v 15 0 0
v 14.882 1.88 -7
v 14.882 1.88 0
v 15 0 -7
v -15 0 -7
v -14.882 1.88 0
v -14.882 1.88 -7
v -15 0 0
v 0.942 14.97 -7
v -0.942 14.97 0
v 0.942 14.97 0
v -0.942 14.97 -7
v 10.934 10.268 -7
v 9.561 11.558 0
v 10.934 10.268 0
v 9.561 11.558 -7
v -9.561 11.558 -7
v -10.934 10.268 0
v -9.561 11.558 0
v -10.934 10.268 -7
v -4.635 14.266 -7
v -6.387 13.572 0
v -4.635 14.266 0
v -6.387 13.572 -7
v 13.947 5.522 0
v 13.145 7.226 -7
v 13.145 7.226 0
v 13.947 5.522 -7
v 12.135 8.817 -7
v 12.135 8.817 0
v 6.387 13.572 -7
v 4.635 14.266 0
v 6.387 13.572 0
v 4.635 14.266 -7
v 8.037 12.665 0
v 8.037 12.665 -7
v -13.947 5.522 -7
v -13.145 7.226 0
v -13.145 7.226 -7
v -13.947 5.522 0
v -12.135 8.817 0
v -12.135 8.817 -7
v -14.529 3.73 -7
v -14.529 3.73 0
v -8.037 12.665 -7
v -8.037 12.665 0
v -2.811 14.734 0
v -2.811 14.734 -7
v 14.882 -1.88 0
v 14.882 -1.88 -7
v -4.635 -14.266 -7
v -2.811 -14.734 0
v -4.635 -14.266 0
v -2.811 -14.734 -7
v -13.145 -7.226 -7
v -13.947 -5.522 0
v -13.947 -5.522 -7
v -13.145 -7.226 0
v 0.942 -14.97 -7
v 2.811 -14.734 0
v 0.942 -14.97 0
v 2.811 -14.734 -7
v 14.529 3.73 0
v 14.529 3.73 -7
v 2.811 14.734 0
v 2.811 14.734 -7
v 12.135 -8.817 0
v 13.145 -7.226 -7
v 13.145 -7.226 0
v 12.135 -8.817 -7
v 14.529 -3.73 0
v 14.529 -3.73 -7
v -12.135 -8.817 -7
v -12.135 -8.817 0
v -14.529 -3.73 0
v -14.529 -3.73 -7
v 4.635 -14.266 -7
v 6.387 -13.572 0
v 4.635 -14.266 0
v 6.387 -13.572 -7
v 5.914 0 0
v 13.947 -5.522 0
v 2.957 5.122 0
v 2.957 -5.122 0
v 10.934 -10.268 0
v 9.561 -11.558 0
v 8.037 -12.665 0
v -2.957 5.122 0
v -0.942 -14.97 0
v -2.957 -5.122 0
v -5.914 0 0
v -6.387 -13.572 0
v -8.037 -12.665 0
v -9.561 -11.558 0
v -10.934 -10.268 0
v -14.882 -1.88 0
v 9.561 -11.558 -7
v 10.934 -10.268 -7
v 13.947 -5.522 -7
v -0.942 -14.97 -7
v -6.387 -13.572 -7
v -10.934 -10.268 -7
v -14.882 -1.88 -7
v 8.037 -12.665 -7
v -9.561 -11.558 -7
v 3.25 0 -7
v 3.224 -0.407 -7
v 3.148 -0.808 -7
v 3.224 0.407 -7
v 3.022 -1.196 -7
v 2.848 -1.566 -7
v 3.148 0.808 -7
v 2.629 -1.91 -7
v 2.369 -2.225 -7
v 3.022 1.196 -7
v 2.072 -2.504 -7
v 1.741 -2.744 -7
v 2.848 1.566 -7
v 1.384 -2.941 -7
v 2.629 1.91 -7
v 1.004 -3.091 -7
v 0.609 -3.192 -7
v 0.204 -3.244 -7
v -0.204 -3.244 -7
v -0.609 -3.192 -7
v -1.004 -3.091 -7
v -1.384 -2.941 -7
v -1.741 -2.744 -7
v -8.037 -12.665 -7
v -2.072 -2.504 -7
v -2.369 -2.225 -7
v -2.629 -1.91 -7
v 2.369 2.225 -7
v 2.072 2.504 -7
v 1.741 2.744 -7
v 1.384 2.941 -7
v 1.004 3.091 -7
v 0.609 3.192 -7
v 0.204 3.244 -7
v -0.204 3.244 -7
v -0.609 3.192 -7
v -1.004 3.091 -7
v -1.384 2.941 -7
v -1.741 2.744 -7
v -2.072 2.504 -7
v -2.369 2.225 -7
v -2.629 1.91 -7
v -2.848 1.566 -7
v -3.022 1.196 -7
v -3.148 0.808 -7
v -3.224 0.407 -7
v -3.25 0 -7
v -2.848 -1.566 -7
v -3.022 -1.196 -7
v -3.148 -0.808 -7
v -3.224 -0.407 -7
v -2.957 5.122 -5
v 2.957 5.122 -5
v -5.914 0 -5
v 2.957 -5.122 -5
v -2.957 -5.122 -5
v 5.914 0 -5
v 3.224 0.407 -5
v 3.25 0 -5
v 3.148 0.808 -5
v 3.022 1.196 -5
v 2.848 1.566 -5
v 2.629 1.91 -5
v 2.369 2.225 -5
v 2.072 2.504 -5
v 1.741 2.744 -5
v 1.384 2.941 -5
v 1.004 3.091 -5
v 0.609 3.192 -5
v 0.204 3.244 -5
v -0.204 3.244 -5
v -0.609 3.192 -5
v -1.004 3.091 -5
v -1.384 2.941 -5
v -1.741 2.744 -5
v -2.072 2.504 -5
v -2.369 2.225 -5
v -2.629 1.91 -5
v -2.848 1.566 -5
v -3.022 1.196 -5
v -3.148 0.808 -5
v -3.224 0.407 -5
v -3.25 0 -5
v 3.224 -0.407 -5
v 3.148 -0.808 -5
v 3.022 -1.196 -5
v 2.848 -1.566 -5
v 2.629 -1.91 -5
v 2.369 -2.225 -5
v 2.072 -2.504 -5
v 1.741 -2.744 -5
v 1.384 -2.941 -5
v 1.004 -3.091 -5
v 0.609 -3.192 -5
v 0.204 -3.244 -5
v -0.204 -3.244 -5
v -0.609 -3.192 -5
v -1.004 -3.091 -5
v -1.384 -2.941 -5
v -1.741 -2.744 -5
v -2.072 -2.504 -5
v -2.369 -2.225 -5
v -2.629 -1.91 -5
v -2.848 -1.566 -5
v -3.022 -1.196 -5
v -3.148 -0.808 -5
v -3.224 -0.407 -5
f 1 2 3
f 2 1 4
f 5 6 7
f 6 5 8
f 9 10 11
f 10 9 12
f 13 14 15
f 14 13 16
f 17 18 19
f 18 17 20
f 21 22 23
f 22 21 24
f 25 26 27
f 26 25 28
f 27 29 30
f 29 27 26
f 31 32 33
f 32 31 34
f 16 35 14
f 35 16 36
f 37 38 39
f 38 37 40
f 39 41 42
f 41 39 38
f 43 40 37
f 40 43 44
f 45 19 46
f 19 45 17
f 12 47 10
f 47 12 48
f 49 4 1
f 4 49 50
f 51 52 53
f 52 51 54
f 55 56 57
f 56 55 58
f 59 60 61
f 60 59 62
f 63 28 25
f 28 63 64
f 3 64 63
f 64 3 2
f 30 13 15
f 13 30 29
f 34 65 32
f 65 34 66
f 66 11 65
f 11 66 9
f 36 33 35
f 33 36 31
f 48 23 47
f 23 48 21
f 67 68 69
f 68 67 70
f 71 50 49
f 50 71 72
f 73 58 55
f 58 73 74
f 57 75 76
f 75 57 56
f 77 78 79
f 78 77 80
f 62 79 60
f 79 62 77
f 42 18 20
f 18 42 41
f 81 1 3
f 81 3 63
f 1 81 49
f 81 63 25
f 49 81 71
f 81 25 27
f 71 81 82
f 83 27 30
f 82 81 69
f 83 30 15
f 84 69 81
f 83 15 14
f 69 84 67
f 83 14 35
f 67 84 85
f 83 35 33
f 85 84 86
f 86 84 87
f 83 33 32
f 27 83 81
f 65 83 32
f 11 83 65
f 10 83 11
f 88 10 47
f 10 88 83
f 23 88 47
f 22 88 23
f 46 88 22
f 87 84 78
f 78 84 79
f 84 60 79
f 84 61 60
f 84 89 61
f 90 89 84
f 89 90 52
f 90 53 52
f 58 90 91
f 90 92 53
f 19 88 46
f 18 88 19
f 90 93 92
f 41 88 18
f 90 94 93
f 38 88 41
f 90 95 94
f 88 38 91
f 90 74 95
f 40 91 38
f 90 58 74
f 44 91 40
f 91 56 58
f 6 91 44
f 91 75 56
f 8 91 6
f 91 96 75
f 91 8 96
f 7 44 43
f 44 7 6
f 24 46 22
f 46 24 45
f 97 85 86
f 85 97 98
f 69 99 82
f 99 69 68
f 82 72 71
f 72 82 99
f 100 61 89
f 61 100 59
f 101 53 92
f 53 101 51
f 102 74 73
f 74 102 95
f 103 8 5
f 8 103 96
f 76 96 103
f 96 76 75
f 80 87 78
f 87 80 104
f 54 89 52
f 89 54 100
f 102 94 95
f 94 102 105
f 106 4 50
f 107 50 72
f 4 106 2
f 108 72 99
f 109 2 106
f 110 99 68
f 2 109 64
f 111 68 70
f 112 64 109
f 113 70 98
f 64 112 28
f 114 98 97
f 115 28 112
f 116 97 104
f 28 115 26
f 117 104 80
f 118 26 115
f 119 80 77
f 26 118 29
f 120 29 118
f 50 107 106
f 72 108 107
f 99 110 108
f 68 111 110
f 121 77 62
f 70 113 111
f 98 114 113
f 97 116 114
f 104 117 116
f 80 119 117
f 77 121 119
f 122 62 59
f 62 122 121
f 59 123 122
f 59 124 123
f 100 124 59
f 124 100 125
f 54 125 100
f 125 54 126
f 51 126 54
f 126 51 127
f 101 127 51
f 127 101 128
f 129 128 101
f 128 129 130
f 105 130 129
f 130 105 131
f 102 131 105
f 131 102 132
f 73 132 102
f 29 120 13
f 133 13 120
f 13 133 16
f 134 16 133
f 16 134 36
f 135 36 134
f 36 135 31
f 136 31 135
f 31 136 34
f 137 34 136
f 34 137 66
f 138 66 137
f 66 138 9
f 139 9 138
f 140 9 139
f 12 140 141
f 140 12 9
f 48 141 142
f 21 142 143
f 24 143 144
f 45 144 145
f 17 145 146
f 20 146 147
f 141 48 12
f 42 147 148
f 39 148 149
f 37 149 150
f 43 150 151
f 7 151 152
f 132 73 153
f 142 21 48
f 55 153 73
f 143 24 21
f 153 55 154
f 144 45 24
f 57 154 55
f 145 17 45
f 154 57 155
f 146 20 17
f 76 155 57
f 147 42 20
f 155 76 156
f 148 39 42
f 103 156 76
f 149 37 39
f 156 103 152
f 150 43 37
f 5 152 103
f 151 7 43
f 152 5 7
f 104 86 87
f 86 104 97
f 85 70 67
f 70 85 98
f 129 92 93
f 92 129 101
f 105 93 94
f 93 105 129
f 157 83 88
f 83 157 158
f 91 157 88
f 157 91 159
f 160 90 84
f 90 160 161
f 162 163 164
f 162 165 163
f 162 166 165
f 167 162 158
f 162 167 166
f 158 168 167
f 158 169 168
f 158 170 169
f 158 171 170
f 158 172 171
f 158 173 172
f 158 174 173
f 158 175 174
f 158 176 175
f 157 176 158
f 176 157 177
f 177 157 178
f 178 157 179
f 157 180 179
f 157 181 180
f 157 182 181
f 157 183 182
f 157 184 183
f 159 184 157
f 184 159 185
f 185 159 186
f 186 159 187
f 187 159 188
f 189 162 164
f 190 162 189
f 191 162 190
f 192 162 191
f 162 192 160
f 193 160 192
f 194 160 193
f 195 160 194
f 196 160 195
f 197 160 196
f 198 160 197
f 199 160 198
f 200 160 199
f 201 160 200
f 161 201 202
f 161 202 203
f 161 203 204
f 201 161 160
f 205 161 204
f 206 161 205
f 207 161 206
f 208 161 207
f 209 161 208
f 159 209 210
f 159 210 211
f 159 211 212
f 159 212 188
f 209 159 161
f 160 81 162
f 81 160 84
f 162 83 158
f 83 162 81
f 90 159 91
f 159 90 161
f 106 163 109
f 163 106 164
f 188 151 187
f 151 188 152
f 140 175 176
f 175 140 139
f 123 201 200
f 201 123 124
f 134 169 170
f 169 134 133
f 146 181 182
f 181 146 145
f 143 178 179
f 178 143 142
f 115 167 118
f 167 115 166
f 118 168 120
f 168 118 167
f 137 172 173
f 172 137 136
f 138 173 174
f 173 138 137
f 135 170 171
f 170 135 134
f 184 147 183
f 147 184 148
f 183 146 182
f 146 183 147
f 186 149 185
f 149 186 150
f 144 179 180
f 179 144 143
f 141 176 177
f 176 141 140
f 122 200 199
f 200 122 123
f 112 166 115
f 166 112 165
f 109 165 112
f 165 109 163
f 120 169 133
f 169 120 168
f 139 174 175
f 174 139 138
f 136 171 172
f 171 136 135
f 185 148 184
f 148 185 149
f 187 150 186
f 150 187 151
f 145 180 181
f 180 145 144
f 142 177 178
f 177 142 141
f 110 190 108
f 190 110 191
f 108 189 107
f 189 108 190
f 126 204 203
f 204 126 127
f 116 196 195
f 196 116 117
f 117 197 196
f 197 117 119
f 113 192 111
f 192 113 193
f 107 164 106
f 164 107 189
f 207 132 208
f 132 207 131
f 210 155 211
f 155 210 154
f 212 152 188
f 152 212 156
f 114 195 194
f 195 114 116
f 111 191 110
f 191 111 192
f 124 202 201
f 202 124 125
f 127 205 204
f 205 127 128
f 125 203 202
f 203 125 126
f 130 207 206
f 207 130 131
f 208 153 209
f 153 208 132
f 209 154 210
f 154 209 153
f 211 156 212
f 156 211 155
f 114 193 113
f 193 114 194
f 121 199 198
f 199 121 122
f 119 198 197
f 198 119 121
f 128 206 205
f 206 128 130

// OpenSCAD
$fn = 50;

difference() {
	union() {
		translate(v = [0, 0, -7.0]) {
			cylinder(h = 7.0, r = 15.0);
		}
		#translate(v = [0, 0, -8.5]) {
			cylinder(h = 8.5, r = 2.875);
		}
	}
	union() {
		translate(v = [0, 0, 0]) {
			rotate(a = [0, 0, 0]) {
				difference() {
					union() {
						translate(v = [0, 0, -5]) {
							linear_extrude(height = 5) {
								polygon(points = [[5.914249999999999, 0.0], [2.957125, 5.1218907443321156], [-2.9571249999999982, 5.1218907443321156], [-5.914249999999999, 7.242867331857232e-16], [-2.9571250000000022, -5.121890744332115], [2.9571249999999956, -5.121890744332118]]);
							}
						}
					}
					union();
				}
			}
		}
		#translate(v = [0, 0, -100.0]) {
			cylinder(h = 200, r = 3.25);
		}
	}
}
